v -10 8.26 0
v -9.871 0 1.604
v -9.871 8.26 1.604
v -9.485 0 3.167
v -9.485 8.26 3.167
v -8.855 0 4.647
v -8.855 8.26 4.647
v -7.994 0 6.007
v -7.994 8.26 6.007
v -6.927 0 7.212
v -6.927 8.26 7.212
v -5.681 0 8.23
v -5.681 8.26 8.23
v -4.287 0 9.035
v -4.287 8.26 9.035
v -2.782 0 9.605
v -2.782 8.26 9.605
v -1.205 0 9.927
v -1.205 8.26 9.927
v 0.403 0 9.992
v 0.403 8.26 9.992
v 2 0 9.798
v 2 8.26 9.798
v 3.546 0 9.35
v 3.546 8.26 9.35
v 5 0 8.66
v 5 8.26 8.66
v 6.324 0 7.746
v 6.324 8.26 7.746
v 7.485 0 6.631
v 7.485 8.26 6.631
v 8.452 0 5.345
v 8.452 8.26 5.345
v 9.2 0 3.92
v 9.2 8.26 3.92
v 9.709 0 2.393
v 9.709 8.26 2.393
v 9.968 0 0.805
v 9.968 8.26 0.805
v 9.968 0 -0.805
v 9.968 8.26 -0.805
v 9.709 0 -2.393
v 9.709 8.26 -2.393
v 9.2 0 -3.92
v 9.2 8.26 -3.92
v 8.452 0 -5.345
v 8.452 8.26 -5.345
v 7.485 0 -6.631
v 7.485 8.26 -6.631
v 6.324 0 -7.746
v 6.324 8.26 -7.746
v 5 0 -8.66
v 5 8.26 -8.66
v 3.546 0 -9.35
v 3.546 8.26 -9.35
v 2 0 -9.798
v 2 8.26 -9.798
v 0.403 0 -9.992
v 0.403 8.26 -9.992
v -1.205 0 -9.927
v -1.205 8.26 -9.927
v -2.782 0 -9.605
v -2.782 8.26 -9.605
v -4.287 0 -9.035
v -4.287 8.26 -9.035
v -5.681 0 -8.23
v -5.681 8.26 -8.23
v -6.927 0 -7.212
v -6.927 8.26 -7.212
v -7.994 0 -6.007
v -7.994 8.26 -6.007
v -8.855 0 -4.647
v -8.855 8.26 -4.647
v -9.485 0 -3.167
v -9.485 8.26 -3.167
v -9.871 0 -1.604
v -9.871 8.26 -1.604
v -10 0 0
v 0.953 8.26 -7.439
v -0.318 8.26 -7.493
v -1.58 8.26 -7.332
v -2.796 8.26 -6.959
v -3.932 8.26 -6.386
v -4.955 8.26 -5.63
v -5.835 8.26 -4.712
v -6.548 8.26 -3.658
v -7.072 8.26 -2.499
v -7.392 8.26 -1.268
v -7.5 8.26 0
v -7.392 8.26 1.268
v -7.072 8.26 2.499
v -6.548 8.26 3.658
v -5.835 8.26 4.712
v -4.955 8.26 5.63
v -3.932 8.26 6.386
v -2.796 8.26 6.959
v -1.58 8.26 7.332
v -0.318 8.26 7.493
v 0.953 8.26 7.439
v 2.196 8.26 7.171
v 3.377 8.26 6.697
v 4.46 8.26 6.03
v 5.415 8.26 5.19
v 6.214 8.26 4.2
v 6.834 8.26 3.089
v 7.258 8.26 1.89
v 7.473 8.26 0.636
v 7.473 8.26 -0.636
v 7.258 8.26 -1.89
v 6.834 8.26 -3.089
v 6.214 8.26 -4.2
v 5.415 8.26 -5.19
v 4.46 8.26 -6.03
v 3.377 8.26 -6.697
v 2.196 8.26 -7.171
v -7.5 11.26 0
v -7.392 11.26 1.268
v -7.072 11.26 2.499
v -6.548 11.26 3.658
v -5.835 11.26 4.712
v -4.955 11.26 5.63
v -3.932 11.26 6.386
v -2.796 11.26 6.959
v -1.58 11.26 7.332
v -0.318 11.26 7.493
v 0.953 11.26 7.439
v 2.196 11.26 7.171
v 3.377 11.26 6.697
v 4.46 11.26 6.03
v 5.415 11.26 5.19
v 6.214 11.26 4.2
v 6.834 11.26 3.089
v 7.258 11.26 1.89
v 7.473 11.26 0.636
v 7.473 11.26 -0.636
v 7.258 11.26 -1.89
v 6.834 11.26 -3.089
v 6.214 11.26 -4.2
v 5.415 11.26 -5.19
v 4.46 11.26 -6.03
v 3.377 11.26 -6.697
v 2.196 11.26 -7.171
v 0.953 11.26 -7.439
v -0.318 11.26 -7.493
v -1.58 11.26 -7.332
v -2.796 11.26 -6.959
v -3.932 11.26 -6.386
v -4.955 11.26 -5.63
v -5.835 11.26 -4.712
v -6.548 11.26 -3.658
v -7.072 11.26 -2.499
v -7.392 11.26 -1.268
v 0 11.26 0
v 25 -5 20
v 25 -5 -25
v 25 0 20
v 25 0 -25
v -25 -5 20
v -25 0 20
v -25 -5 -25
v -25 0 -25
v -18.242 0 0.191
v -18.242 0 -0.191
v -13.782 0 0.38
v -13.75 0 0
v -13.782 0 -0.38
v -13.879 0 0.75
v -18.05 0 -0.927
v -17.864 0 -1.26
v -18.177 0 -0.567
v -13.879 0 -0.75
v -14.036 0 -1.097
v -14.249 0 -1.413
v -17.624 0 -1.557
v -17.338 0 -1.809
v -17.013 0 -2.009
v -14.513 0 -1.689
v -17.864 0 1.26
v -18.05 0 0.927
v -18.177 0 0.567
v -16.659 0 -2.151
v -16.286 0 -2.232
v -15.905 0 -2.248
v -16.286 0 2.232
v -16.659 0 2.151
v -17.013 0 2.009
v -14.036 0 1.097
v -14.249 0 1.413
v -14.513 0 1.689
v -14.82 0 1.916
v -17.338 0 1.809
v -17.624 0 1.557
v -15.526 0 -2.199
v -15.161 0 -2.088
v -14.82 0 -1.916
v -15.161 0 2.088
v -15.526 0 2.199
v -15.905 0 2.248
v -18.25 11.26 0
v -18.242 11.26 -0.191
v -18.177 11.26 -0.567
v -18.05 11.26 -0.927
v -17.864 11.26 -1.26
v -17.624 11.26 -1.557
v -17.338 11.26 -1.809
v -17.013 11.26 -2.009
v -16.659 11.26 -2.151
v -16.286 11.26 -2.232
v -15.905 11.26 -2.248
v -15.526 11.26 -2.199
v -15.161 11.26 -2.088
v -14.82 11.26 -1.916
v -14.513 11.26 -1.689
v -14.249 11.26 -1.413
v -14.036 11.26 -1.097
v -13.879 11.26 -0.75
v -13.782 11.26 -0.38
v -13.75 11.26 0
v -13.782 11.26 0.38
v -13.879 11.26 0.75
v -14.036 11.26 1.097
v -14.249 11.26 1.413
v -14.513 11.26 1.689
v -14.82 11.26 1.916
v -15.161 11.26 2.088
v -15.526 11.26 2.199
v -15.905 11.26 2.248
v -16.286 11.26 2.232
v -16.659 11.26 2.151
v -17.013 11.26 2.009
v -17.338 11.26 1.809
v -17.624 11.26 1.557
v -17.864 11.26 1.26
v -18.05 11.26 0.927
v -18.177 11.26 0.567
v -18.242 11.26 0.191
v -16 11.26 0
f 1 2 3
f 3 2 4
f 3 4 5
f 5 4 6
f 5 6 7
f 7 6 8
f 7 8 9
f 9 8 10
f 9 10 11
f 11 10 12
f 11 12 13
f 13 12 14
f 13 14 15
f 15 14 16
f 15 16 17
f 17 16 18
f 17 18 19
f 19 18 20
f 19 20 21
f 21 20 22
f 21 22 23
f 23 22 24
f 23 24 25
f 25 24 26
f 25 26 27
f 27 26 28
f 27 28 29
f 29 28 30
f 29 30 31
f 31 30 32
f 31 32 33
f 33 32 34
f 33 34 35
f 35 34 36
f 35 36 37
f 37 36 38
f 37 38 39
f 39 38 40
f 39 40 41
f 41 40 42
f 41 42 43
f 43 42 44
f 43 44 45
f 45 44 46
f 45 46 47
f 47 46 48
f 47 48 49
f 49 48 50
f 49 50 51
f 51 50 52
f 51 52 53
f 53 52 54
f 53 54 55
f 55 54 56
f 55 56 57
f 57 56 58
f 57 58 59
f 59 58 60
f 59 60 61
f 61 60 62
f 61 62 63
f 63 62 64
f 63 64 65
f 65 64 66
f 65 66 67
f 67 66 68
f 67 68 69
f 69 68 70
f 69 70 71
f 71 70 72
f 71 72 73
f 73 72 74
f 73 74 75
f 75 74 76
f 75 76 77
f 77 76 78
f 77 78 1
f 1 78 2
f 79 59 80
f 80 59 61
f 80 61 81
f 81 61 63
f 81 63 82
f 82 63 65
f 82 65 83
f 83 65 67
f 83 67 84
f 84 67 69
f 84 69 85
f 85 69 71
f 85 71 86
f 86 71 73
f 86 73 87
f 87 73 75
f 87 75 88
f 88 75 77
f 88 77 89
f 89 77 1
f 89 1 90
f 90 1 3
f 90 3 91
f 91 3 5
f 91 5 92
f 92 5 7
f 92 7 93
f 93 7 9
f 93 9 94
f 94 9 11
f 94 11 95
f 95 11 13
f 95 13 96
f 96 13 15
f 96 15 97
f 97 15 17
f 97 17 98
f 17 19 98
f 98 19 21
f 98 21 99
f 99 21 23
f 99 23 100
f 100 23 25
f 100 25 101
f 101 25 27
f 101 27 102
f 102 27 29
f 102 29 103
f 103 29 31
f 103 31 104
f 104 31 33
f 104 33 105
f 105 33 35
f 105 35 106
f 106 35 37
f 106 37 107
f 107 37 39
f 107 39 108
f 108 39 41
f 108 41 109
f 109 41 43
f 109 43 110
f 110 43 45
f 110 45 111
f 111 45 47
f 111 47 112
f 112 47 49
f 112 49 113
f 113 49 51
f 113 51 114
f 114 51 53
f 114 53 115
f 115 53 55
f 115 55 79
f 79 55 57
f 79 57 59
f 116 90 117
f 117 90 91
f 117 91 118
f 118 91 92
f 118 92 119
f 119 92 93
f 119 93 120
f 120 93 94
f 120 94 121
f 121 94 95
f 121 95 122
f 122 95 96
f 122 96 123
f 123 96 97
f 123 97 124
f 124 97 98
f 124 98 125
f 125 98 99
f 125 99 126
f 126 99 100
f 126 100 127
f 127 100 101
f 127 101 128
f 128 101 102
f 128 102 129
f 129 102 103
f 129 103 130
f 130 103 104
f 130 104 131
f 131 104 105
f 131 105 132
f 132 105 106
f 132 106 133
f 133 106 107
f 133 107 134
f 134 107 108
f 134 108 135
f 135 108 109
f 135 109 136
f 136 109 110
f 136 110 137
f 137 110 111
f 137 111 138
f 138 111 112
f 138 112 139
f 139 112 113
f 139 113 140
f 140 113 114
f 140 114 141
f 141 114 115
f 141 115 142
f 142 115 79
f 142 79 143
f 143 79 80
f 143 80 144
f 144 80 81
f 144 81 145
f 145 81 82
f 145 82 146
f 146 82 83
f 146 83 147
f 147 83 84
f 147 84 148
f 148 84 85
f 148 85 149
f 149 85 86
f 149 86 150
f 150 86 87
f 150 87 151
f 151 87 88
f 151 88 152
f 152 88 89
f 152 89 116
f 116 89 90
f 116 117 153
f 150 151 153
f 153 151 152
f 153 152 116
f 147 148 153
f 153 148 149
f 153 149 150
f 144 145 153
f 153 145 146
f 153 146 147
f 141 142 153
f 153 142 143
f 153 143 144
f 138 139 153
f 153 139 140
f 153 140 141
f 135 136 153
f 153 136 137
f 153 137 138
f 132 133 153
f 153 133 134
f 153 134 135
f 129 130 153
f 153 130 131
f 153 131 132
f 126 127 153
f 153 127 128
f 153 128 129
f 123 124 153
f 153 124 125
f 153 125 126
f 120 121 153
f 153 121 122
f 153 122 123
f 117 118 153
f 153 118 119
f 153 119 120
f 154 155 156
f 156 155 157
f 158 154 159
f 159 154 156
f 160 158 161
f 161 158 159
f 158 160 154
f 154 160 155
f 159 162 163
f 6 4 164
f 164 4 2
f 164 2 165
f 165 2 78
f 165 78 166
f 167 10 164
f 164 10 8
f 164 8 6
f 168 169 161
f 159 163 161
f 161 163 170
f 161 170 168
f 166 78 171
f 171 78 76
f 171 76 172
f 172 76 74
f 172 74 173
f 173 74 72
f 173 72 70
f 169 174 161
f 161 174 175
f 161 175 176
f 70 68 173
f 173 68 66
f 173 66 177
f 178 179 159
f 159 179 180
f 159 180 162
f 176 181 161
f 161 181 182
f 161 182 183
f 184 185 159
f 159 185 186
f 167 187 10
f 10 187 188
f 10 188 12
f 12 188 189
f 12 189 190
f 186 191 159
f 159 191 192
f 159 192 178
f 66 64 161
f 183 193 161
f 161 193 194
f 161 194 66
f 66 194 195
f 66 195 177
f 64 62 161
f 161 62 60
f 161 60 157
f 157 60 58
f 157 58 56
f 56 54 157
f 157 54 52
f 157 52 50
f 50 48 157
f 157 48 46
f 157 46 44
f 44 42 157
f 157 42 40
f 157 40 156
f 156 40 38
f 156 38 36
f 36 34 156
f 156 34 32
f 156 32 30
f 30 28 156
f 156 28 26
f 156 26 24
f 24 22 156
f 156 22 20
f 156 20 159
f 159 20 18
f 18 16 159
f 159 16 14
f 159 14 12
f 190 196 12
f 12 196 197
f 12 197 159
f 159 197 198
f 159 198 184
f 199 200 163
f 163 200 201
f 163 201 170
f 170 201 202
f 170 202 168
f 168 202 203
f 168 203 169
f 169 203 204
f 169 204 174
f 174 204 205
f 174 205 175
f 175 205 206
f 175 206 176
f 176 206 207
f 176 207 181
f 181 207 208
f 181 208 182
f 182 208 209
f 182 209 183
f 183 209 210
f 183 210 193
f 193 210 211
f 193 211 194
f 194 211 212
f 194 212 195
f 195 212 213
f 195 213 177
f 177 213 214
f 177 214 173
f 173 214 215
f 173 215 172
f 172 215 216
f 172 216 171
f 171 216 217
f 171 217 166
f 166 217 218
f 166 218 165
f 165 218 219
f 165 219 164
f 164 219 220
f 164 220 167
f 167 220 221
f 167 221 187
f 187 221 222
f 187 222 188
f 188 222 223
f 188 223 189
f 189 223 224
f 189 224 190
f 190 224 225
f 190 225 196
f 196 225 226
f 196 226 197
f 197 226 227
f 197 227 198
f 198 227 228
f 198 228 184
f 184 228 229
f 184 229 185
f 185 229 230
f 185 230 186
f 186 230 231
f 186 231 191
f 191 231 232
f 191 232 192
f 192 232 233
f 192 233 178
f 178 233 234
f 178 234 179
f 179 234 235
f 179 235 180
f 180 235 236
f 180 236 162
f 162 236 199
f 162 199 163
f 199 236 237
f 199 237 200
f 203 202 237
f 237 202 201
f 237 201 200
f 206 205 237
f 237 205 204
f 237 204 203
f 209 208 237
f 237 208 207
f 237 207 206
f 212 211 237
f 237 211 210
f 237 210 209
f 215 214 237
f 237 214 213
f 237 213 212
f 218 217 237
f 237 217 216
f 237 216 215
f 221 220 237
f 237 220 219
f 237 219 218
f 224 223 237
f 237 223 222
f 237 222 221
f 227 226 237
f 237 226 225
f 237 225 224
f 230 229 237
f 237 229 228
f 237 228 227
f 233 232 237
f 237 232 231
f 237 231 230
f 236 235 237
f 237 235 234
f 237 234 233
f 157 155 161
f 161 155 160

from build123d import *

# Parameters (mm, degrees)
SKETCH4_W           = 50
SKETCH4_H           = 40
BOSS_EXTRUDE1_DEPTH = 5
SKETCH5_R           = 2.25
BOSS_EXTRUDE2_DEPTH = 11.26
SKETCH6_W           = 50
SKETCH6_H           = 5
BOSS_EXTRUDE3_DEPTH = 5


with BuildPart() as part:
    # Sketch3 → Revolve1 (revolve)
    with BuildSketch(Plane.XY, mode=Mode.PRIVATE) as revolve1_sk:
        Polygon((0, 0), (10, 0), (10, 8.26), (7.5, 8.26), (7.5, 11.26), (0, 11.26), align=None)
    revolve(revolve1_sk.sketch.rotate(Axis((0, 11.26, 0), (0, -1, 0)), 180), axis=Axis((0, 11.26, 0), (0, -1, 0)))

    # Sketch4 → Boss-Extrude1 (add)
    with BuildSketch(Plane.XZ):
        Rectangle(SKETCH4_W, SKETCH4_H)
    extrude(amount=BOSS_EXTRUDE1_DEPTH)

    # Sketch5 → Boss-Extrude2 (add)
    with BuildSketch(Plane(origin=(0, 0, 0), x_dir=(1, 0, 0), z_dir=(0, 1, 0))):
        with Locations((-16, 0)):
            Circle(SKETCH5_R)
    extrude(amount=BOSS_EXTRUDE2_DEPTH)

    # Sketch6 → Boss-Extrude3 (add)
    with BuildSketch(Plane(origin=(0, 0, -20), x_dir=(-1, 0, 0), z_dir=(0, 0, -1))):
        with Locations((0, -2.5)):
            Rectangle(SKETCH6_W, SKETCH6_H)
    extrude(amount=BOSS_EXTRUDE3_DEPTH)


solid = part.part
